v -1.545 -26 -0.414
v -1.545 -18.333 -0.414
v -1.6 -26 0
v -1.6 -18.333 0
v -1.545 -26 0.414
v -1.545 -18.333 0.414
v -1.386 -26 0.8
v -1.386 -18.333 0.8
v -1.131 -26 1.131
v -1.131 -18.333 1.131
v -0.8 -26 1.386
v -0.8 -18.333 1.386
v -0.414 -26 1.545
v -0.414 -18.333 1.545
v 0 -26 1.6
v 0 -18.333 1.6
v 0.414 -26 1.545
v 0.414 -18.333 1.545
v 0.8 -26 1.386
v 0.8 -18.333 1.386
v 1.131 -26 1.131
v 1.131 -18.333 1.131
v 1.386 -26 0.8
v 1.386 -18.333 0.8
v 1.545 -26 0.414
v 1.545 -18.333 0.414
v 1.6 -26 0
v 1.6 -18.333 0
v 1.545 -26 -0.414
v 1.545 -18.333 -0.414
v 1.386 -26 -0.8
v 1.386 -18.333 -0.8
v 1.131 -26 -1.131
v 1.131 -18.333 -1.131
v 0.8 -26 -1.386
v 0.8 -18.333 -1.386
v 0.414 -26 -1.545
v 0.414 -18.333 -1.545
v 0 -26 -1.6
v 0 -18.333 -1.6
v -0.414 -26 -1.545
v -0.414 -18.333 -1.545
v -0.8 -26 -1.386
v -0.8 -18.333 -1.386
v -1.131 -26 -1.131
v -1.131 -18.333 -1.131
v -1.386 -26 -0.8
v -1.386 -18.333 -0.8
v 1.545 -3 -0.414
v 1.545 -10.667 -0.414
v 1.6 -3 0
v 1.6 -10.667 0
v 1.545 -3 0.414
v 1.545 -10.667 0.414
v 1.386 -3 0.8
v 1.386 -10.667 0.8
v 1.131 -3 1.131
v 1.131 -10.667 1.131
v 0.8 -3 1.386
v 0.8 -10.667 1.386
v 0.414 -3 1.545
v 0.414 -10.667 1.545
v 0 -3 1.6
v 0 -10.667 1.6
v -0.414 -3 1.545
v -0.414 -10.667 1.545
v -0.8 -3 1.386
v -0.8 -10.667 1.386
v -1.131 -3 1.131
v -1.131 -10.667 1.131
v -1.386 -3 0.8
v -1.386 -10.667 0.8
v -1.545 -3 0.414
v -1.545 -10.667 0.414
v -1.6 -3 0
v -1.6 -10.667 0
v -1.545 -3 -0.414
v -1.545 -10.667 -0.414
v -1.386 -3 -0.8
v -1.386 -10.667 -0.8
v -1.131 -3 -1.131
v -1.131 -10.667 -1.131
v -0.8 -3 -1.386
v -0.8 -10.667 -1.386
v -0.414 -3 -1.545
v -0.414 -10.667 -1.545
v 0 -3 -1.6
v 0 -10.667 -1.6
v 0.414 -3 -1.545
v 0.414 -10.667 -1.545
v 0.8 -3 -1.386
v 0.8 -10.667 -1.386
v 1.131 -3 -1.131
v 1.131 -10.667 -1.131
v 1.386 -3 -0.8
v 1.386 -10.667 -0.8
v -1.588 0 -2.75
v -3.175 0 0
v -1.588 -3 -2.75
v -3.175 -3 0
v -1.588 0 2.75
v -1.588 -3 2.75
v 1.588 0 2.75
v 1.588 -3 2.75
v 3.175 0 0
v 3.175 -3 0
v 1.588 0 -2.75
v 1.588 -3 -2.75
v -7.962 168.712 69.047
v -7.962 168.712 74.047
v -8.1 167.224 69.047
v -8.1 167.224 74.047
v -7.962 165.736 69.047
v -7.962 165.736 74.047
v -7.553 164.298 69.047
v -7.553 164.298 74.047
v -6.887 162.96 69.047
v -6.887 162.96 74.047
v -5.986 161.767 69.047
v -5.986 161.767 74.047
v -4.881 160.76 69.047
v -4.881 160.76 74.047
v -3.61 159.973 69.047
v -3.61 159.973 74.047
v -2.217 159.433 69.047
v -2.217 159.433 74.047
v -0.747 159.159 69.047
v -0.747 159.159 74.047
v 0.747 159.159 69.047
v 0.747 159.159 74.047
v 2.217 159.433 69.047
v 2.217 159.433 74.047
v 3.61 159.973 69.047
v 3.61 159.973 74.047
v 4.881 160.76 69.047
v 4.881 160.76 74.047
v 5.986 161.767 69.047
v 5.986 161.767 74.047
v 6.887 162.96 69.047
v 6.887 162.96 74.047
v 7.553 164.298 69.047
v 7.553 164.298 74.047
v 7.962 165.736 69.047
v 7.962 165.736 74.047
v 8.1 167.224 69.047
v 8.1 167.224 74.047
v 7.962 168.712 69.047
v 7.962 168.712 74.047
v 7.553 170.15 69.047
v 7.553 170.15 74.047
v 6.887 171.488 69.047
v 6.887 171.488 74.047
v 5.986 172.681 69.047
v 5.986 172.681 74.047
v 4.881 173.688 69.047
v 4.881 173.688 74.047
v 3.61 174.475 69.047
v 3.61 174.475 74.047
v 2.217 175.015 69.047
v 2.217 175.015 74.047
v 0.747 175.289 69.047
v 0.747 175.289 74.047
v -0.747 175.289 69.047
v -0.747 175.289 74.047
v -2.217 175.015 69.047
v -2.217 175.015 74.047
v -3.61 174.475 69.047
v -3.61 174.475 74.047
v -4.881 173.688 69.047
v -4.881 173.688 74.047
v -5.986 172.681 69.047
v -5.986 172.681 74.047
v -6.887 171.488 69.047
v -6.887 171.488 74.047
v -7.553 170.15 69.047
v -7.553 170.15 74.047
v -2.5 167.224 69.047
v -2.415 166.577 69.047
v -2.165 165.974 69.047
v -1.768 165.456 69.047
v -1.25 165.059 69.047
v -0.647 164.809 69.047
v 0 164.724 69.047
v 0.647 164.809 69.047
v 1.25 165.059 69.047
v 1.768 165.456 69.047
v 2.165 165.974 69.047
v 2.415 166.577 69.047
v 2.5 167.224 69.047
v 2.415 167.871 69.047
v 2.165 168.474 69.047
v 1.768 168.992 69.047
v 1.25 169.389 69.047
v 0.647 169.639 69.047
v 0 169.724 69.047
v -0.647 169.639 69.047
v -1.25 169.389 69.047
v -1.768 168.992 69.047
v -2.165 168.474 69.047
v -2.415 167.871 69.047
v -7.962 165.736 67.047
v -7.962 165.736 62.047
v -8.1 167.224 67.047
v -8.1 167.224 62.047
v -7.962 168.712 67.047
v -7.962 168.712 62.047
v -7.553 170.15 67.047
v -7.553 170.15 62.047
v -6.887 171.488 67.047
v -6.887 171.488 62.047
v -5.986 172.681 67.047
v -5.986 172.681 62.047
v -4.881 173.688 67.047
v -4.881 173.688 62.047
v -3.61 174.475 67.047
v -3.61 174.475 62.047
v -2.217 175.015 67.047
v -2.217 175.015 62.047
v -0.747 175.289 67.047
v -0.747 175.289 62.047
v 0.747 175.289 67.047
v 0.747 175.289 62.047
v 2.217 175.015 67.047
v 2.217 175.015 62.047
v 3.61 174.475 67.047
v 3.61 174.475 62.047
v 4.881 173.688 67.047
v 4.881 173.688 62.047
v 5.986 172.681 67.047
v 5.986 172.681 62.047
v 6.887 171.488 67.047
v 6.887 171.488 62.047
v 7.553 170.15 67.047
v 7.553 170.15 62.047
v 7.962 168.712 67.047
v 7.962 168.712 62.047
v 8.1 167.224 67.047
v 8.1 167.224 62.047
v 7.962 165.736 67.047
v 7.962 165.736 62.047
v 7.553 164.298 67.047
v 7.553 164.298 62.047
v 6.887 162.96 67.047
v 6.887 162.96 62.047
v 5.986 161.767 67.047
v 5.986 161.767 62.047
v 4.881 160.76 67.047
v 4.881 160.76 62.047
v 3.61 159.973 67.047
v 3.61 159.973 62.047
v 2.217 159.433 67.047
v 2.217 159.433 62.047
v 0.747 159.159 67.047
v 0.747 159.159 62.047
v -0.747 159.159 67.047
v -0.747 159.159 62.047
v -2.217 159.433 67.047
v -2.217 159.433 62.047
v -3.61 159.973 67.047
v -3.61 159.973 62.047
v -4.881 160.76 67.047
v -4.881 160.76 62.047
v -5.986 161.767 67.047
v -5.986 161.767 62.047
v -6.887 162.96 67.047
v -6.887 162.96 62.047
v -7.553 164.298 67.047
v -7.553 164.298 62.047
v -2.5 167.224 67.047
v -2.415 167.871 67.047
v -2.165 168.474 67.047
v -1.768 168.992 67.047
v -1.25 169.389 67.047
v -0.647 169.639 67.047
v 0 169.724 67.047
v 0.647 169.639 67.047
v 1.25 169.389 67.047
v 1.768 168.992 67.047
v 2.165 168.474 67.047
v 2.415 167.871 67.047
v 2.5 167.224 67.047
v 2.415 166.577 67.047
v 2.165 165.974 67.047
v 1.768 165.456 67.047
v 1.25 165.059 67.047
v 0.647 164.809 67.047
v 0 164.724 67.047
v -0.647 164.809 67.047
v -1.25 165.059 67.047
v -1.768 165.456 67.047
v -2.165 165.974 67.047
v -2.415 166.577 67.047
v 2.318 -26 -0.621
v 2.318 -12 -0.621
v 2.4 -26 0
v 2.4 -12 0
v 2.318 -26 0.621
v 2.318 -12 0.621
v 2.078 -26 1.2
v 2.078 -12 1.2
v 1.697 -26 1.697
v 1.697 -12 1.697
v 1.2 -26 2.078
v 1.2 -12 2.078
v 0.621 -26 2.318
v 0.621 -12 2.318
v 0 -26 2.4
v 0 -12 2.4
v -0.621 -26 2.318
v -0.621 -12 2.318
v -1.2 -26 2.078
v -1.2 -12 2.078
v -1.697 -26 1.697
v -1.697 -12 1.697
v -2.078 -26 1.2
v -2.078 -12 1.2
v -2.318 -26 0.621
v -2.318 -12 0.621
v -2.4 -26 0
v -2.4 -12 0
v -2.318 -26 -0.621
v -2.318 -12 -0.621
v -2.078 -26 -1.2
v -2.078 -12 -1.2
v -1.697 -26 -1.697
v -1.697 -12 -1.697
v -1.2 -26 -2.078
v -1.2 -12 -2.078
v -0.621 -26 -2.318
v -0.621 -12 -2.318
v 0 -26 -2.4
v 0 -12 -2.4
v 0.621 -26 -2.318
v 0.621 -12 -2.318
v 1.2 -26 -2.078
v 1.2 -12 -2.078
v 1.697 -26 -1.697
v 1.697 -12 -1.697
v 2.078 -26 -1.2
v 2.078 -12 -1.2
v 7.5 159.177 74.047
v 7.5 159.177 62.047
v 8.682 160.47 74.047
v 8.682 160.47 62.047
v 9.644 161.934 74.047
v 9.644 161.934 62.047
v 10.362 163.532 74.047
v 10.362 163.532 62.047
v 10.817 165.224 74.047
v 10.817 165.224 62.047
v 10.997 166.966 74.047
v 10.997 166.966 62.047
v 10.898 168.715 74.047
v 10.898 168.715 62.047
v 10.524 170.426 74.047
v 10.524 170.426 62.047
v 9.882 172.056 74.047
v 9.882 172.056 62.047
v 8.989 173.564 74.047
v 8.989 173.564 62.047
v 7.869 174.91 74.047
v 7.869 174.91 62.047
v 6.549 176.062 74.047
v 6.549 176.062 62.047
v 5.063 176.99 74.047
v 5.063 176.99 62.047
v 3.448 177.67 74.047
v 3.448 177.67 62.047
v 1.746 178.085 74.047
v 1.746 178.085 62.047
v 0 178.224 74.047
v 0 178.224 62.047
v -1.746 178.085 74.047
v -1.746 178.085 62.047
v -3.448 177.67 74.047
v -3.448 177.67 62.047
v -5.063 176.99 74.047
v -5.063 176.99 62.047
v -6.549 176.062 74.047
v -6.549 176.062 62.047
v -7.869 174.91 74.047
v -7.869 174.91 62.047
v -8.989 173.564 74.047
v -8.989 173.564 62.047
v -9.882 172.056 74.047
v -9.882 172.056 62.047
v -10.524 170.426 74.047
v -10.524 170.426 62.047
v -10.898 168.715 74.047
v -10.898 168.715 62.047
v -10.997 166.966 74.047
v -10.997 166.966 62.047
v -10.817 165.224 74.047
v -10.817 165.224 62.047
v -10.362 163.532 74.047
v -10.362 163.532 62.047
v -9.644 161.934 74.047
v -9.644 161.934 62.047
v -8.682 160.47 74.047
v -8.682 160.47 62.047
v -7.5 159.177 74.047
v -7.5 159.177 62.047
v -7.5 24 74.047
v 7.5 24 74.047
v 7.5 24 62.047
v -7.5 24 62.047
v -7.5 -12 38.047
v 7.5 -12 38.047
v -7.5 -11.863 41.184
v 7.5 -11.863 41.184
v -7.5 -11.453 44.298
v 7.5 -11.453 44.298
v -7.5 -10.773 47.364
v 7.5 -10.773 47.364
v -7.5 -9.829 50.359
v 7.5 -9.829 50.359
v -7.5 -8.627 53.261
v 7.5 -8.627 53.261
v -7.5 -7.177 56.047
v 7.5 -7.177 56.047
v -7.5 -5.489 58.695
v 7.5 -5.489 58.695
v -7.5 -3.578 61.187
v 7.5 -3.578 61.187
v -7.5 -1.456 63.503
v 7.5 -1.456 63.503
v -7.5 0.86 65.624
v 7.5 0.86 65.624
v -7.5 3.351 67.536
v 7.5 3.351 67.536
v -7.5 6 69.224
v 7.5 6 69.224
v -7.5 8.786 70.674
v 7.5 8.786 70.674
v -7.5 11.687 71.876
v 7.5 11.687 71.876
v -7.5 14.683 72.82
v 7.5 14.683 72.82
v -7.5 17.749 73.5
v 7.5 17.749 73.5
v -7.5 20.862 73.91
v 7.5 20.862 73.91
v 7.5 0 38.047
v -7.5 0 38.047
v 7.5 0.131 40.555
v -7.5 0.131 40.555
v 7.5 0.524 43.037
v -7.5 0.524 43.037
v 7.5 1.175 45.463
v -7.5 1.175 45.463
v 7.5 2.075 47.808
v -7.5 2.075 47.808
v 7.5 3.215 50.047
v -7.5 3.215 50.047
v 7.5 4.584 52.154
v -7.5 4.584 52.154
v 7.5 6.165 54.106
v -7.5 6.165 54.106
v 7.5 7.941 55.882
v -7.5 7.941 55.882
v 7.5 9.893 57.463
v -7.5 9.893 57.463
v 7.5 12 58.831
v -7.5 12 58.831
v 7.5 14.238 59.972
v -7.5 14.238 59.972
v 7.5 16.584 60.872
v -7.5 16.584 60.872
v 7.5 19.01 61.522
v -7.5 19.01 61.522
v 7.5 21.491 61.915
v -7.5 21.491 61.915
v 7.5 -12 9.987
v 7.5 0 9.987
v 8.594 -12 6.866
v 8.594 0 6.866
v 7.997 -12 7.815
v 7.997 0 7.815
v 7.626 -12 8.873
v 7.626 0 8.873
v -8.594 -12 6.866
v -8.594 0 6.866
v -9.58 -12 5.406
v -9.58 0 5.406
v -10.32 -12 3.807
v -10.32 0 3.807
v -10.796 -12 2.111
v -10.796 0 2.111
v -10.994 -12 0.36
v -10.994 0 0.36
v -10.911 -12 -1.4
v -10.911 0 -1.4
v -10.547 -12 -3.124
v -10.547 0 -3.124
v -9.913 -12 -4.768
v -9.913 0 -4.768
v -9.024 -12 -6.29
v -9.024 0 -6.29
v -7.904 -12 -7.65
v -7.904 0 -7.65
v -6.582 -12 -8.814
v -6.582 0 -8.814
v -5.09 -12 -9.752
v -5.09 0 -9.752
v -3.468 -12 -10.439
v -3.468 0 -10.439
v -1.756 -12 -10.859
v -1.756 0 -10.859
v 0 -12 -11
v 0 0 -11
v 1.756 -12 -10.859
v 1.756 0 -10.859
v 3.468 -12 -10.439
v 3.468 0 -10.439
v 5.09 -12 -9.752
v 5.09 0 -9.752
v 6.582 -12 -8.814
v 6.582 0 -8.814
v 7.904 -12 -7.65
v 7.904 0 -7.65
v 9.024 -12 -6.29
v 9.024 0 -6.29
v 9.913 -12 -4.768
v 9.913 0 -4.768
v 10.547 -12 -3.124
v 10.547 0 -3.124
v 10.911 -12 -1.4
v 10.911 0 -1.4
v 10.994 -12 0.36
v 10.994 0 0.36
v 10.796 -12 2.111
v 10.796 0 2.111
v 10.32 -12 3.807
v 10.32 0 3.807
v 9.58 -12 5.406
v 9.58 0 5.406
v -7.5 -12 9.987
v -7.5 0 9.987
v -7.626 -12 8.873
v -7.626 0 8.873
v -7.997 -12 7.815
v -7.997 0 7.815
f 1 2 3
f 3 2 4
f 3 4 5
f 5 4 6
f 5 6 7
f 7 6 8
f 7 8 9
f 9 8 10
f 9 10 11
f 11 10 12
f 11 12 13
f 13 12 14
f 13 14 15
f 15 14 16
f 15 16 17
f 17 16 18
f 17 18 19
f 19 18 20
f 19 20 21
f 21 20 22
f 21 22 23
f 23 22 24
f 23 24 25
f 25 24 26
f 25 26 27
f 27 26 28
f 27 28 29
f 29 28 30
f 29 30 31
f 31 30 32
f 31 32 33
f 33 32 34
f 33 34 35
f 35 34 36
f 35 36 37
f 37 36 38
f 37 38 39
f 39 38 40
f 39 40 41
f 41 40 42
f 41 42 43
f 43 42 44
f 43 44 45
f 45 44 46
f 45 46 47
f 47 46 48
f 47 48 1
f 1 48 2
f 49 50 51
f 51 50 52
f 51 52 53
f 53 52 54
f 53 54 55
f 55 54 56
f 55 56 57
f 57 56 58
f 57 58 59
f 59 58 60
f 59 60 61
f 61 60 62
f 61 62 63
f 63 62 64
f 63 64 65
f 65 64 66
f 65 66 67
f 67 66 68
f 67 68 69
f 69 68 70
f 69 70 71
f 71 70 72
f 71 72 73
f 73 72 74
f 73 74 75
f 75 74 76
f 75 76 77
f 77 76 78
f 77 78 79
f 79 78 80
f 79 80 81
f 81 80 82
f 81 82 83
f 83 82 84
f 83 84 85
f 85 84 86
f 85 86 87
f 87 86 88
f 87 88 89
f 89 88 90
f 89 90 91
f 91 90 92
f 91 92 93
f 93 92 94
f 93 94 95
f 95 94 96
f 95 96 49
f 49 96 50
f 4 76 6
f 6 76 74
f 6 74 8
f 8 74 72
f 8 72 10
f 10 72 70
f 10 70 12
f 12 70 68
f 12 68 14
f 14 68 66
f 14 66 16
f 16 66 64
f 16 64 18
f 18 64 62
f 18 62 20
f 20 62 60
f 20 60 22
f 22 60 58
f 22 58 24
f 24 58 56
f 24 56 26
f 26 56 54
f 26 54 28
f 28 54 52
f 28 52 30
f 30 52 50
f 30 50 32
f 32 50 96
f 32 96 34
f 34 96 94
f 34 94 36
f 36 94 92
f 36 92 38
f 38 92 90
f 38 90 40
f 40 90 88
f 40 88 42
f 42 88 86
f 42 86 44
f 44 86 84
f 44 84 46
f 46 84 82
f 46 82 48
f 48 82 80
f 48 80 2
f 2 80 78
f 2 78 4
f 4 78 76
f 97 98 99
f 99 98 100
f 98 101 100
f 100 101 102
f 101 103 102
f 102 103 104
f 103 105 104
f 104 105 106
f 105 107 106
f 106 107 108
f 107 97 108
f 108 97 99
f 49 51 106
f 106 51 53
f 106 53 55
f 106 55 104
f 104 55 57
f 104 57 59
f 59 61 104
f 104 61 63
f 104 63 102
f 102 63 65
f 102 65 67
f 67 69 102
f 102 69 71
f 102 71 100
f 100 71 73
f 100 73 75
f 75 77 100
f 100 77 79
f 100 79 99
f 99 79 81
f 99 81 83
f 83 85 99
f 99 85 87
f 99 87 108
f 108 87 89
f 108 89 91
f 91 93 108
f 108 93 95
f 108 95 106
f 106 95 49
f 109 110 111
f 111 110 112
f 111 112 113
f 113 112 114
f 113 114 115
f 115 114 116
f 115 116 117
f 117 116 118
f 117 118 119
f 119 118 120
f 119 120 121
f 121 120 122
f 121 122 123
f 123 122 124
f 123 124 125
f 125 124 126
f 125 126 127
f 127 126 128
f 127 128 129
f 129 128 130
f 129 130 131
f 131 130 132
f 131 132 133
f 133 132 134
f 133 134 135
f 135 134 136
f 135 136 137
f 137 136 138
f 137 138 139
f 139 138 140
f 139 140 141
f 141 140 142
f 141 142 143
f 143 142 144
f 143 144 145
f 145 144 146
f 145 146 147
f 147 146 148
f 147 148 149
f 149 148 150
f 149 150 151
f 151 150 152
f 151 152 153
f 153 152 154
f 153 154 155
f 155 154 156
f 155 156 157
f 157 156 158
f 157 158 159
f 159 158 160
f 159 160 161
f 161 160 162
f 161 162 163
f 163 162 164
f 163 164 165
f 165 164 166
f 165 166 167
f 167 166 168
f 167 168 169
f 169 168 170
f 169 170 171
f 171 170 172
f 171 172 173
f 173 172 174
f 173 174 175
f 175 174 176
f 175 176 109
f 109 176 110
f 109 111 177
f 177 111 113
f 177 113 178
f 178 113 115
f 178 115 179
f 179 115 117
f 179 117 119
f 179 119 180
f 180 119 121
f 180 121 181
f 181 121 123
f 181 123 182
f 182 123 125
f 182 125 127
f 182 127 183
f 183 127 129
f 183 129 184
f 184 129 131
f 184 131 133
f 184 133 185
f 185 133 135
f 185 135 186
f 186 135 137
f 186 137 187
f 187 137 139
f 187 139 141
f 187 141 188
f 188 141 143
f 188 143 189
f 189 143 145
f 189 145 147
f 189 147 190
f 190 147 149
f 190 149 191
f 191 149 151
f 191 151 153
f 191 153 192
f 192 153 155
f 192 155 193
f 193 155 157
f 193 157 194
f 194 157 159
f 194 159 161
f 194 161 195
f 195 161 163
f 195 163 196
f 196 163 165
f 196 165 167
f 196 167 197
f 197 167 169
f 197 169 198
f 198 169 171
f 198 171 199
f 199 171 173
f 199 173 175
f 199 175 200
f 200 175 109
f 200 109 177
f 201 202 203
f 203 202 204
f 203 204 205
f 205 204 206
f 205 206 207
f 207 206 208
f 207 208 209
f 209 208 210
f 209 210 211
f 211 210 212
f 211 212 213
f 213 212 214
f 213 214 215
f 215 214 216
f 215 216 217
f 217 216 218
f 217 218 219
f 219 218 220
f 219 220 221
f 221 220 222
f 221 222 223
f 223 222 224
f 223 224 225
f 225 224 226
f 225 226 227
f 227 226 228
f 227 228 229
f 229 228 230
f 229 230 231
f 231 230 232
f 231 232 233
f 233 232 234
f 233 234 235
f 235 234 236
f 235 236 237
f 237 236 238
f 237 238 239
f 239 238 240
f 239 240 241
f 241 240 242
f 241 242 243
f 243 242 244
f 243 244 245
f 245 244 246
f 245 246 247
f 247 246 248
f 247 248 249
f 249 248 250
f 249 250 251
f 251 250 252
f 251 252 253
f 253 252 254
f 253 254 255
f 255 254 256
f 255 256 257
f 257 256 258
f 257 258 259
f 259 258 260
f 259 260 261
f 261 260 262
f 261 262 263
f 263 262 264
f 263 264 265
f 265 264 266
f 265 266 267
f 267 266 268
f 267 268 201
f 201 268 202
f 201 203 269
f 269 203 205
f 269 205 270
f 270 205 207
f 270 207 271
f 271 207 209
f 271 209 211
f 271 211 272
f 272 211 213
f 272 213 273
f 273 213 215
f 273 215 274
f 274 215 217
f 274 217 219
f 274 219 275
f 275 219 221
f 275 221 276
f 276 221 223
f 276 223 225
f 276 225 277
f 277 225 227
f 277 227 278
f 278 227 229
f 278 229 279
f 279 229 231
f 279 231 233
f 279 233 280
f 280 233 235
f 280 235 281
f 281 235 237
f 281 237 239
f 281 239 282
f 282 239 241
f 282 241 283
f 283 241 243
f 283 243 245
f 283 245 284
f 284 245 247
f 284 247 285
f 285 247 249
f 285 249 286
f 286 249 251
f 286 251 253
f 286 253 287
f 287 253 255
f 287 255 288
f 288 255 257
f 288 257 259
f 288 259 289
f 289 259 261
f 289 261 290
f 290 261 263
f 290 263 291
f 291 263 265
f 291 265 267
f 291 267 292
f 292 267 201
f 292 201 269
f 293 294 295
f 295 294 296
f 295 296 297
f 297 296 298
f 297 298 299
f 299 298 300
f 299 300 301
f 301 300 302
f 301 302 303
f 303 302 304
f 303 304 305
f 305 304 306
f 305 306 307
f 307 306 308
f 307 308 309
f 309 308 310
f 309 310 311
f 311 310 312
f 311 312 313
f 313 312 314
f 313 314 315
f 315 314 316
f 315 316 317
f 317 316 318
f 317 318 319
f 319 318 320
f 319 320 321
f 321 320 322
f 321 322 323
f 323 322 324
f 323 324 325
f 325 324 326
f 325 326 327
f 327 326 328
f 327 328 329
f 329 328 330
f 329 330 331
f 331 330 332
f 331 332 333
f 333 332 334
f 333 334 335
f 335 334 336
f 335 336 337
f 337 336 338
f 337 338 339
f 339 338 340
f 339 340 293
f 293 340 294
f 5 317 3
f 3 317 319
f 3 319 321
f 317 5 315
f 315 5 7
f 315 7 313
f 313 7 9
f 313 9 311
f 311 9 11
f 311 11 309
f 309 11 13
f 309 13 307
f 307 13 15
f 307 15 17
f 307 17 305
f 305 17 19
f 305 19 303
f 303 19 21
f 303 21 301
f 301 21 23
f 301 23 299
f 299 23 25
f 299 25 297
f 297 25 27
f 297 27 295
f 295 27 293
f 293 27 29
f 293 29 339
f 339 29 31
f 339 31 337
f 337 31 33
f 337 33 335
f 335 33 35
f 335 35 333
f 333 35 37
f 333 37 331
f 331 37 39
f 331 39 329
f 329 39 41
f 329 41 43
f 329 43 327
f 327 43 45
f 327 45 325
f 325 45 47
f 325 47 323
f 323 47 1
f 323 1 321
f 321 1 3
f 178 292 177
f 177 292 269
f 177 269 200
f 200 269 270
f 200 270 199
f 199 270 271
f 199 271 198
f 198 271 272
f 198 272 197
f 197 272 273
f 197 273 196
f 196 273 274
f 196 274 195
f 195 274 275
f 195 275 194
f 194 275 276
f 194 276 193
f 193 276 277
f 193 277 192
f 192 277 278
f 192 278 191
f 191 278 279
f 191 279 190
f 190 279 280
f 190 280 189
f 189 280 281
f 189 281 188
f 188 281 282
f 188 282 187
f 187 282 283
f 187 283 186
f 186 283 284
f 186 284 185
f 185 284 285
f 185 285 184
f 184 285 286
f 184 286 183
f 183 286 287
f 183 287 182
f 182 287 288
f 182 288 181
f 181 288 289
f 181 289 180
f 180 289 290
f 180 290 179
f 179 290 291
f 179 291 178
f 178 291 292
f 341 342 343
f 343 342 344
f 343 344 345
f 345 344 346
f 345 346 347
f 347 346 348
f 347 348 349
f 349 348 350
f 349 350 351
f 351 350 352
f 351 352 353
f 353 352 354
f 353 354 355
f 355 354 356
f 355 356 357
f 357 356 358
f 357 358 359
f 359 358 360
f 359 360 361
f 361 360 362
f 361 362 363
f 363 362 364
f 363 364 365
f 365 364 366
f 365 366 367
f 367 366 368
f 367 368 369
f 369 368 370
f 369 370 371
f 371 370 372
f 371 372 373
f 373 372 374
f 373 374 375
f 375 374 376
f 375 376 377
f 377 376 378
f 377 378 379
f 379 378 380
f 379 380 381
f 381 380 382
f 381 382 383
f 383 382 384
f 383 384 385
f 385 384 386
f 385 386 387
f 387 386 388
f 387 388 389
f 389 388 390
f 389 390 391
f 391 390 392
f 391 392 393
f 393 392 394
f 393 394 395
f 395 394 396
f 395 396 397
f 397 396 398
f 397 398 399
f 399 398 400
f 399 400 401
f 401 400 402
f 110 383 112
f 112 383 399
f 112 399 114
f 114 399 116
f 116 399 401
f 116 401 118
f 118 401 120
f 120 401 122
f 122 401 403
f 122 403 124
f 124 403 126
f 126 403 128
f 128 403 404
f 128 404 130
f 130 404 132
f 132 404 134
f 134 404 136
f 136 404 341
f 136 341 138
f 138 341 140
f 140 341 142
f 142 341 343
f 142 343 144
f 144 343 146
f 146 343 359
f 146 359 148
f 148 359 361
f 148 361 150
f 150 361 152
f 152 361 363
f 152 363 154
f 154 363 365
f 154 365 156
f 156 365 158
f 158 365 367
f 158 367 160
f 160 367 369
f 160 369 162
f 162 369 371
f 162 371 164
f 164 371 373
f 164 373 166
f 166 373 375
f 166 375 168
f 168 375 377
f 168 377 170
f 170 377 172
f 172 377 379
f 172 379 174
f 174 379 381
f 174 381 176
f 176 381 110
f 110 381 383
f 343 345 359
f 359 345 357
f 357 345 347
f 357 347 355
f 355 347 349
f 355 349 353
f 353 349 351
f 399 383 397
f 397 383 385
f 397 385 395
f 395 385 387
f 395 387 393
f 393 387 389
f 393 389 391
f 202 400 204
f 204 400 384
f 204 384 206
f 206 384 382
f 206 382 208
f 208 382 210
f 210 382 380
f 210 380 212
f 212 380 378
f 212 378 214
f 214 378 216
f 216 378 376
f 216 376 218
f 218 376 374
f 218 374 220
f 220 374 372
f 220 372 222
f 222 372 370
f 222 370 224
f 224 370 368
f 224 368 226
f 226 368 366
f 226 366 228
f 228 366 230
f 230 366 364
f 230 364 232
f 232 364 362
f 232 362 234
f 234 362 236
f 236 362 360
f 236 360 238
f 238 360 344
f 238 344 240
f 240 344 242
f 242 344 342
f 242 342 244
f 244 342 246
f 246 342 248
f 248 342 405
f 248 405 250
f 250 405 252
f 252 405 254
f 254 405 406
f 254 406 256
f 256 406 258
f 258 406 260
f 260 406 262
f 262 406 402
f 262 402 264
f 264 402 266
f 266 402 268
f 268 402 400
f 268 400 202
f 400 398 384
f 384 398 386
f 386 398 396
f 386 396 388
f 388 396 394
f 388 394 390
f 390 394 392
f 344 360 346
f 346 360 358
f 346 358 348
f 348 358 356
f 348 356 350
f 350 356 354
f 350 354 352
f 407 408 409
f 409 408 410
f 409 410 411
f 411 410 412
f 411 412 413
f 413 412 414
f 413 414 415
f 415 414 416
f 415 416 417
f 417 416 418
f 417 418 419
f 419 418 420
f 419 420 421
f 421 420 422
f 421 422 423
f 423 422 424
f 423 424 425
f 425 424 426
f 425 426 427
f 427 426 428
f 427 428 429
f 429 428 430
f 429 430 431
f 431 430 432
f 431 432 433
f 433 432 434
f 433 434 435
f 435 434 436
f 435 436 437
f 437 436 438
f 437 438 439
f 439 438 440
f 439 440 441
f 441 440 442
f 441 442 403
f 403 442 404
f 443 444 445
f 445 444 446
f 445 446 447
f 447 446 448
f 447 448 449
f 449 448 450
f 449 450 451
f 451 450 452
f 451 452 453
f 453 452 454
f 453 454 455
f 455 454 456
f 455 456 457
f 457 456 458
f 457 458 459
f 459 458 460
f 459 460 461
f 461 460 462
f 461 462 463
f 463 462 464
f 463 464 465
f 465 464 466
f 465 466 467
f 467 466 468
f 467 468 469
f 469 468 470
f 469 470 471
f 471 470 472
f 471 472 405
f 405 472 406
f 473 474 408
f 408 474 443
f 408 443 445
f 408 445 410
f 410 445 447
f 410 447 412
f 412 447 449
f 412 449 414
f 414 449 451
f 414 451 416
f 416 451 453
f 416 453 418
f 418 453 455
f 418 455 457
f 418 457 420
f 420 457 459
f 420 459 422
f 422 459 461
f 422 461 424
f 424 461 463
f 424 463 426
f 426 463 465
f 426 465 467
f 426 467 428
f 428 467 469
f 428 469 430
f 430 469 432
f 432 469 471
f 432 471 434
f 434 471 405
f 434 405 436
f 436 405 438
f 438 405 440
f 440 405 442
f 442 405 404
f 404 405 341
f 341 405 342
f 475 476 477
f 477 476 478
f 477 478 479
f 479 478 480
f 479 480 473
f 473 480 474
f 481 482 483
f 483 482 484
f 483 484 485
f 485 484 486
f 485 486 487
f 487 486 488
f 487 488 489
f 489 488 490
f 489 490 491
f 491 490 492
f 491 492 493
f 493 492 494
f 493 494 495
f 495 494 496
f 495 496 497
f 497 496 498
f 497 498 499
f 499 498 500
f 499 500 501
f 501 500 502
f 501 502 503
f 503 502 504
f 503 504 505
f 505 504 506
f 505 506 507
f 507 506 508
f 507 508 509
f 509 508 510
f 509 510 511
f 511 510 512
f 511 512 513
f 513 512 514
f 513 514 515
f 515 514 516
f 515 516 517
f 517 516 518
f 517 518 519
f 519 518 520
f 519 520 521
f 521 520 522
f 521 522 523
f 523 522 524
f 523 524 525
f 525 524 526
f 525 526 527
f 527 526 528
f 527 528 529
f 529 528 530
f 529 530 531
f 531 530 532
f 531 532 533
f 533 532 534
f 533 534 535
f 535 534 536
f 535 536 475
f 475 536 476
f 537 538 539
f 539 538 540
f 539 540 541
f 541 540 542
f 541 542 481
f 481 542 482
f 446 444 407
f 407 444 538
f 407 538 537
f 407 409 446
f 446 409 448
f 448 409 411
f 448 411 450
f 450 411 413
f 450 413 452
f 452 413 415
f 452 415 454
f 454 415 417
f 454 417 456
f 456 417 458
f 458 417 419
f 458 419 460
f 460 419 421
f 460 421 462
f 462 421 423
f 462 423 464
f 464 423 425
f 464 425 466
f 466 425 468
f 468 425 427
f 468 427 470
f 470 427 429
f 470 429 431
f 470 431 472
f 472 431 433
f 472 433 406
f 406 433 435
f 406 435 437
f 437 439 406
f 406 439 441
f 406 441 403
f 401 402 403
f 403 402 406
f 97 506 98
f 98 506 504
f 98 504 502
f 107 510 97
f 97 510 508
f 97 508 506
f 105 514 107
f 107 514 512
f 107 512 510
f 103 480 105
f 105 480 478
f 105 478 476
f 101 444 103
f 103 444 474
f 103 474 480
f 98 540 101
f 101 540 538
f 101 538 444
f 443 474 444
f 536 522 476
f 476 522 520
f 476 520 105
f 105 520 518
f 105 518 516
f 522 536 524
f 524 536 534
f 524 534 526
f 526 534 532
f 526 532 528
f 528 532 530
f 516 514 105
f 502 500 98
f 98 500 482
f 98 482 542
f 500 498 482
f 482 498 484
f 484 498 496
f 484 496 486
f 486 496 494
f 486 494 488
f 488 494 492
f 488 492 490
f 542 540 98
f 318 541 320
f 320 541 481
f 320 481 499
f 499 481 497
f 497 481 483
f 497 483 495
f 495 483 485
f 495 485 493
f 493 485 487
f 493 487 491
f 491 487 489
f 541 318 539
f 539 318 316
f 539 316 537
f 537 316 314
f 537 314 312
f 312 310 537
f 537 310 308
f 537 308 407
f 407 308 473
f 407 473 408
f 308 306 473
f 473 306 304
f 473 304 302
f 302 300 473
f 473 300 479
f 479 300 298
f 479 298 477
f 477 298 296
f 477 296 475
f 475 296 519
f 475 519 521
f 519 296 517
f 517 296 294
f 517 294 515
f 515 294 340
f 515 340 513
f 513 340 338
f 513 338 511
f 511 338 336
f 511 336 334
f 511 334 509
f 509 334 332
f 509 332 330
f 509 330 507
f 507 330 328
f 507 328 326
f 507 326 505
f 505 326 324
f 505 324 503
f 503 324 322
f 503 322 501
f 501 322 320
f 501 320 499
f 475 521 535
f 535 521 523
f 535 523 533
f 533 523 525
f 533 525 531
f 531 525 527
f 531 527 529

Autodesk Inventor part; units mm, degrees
ref_plane "YZ Plane" through (0, 0, 0) normal (1, 0, 0) x (0, 1, 0)
ref_plane "XZ Plane" through (0, 0, 0) normal (0, 1, 0) x (-1, 0, 0)
sketch "Sketch1" plane through (0, 0, 0) normal (0, 1, 0) x (-1, 0, 0)
  arc A0 (-8.5938, 6.8664) -> (8.5938, 6.8664) centre (0, 0) ccw
  line L0 (-7.5, 9.9875) -> (-7.5, 18.0467)
  line L1 (7.5, 18.0467) -> (7.5, 9.9875)
  line L2 (7.5, 18.0467) -> (-7.5, 18.0467)
  arc A1 (7.5, 9.9875) -> (8.5938, 6.8664) centre (12.5, 9.9875) ccw
  arc A2 (-8.5938, 6.8664) -> (-7.5, 9.9875) centre (-12.5, 9.9875) ccw
  point P0 (7.5, 8.0467)
  point P1 (-7.5, 8.0467)
  point P2 (0, 8.0467)
  point P3 (0, 18.0467)
  dimension "d0" = 22
  dimension "d109" = 5
  dimension "d129" = 15
  dimension "d131" = 10
extrude "Extrusion1" add sketch "Sketch1" against normal blind 12
sketch "Sketch22" plane through (-7.5, 0, 18.0467) normal (0, 0, 1) x (1, 0, 0)
  line L0 (0, 0) -> (0, -12) projected
  line L1 (15, -12) -> (0, -12) projected
  line L2 (0, 0) -> (15, 0)
  line L3 (15, 0) -> (15, -12)
  line L4 (15, -12) -> (0, -12)
  line L5 (0, -12) -> (0, 0)
  point P0 (7.5, 0)
sketch "Sketch23" plane through (0, 0, 0) normal (1, 0, 0) x (0, 1, 0)
  line L0 (0, 18.0467) -> (-12, 18.0467) projected
  line L1 (-6, 18.0467) -> (-6, 38.0467)
  line L2 (24, 68.0467) -> (155.224, 68.0467)
  arc A0 (24, 68.0467) -> (-6, 38.0467) centre (24, 38.0467) ccw
  point P0 (0, 0)
  point P1 (-6, 68.0467)
  dimension "d110" = 50
  dimension "d111" = 161.224
  dimension "d112" = 90
  dimension "d113" = 30
sweep "Sweep2" add profiles "Sketch22" path "Sketch23" path curves L1 A0 L2
ref_plane "Work Plane11" through (7.5, 24, 68.0467) normal (0, 0, -1) x (-1, 0, 0)
sketch "Sketch24" plane through (7.5, 24, 68.0467) normal (0, 0, -1) x (-1, 0, 0)
  line L0 (0, 131.224) -> (15, 131.224)
  line L1 (0, 131.224) -> (15, 131.224)
  line L2 (0, 131.224) -> (0, 135.1772)
  line L3 (15, 131.224) -> (15, 135.1772)
  arc A0 (15, 135.1772) -> (0, 135.1772) centre (7.5, 143.224) ccw
  point P0 (7.5, -24)
  point P1 (7.5, 131.224)
  point P2 (7.5, 131.224)
  dimension "d142" = 22
  dimension "d143" = 12
extrude "Extrusion17" add sketch "Sketch24" along normal mid plane 12
sketch "Sketch25" plane through (-7.5, 24, 74.0467) normal (0, 0, 1) x (1, 0, 0)
  circle A0 centre (7.5, 143.224) radius 2.5
  arc A1 (15, 135.1772) -> (0, 135.1772) centre (7.5, 143.224) ccw projected
  point P0 (7.5, -24)
  point P1 (22.3607, 44.2893)
  point P2 (7.3607, 44.2893)
  dimension "d123" = 5
extrude "Extrusion18" cut sketch "Sketch25" against normal through all
sketch "Sketch27" plane through (0, 0, 0) normal (0, 1, 0) x (1, 0, 0)
  arc A0 (8.5938, -6.8664) -> (-8.5938, -6.8664) centre (0, 0) ccw projected
  circle A1 centre (0, 0) radius 2.4
  dimension "d136" = 4.8
extrude "Extrusion20" add sketch "Sketch27" against normal blind 26
sketch "Sketch29" plane through (7.5, 24, 62.0467) normal (0, 0, -1) x (-1, 0, 0)
  circle A0 centre (7.5, 143.224) radius 2.5 projected
  circle A1 centre (7.5, 143.224) radius 8.1
  point P0 (7.5, -24)
  dimension "d144" = 16.2
extrude "Extrusion22" cut sketch "Sketch29" against normal blind 5
mirror "Mirror2" about plane through (7.5, 24, 68.0467) normal (0, 0, -1) of "Extrusion22"
sketch "Sketch30" plane through (0, 0, 0) normal (0, 1, 0) x (1, 0, 0)
  line L0 (3.1754, 0) -> (1.5877, -2.75)
  line L1 (1.5877, -2.75) -> (-1.5877, -2.75)
  line L2 (-1.5877, -2.75) -> (-3.1754, 0)
  line L3 (-3.1754, 0) -> (-1.5877, 2.75)
  line L4 (-1.5877, 2.75) -> (1.5877, 2.75)
  line L5 (1.5877, 2.75) -> (3.1754, 0)
  point P0 (0, 0)
  point P1 (0, 0)
  point P2 (0, 0)
  dimension "d148" = 5.5
extrude "Extrusion23" cut sketch "Sketch30" against normal blind 3
sketch "Sketch31" plane through (0, -3, 0) normal (0, 1, 0) x (1, 0, 0)
  circle A0 centre (0, 0) radius 1.6
  dimension "d151" = 3.2
extrude "Extrusion24" cut sketch "Sketch31" against normal through all
properties part number "distal_link_1"
